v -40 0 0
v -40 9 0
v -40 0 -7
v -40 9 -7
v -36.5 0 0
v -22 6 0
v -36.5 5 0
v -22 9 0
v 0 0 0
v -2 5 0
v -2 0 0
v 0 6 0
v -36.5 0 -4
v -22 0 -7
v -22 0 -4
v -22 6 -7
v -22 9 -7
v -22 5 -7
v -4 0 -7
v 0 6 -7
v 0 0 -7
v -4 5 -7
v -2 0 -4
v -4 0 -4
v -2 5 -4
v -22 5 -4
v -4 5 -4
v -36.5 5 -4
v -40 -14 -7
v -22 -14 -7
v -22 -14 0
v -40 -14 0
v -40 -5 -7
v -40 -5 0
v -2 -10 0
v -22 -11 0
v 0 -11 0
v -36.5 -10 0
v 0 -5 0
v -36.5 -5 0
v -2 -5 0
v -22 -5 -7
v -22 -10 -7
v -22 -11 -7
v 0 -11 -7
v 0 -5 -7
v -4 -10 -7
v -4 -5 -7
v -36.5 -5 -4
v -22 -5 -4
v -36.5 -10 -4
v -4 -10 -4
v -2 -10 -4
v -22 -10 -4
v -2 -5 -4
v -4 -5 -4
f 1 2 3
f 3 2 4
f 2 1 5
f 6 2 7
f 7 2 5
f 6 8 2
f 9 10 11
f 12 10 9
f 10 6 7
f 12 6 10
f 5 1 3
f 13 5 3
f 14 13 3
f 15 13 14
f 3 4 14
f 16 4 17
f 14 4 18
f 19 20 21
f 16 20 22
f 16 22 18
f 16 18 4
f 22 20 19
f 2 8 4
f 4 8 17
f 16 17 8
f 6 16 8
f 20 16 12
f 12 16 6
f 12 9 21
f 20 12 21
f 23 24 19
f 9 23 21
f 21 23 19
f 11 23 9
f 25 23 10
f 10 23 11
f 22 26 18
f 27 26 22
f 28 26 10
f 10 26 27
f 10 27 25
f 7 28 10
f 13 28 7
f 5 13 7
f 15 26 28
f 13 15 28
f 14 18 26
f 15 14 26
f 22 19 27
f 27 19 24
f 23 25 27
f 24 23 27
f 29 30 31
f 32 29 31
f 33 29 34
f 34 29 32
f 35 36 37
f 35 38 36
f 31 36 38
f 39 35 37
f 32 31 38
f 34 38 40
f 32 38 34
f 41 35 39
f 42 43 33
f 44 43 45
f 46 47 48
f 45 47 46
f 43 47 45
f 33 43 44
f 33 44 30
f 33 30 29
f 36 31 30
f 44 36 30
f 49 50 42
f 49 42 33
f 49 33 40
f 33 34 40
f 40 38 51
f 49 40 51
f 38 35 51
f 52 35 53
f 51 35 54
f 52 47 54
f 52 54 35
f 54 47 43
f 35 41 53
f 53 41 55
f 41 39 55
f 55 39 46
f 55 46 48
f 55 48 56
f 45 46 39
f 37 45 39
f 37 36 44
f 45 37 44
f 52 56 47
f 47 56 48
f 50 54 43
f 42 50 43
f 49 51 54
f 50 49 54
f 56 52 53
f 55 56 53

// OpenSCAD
module pieza_base() {

  difference(){
		cube([40,9,7]);
		translate([2,0,0])cube([34.5,5,4]);
	};
}

module peza() {
  rotate([0,180,0]){
    difference(){
      pieza_base();
      union(){
        translate([4,0,0]) cube([18,5,8]);
        translate([0,6,0]) cube([22,5,8]);
      }
    }
  }
}



peza();

translate([0,-5,0])
  mirror([0,1,0]){
    peza();
  }
